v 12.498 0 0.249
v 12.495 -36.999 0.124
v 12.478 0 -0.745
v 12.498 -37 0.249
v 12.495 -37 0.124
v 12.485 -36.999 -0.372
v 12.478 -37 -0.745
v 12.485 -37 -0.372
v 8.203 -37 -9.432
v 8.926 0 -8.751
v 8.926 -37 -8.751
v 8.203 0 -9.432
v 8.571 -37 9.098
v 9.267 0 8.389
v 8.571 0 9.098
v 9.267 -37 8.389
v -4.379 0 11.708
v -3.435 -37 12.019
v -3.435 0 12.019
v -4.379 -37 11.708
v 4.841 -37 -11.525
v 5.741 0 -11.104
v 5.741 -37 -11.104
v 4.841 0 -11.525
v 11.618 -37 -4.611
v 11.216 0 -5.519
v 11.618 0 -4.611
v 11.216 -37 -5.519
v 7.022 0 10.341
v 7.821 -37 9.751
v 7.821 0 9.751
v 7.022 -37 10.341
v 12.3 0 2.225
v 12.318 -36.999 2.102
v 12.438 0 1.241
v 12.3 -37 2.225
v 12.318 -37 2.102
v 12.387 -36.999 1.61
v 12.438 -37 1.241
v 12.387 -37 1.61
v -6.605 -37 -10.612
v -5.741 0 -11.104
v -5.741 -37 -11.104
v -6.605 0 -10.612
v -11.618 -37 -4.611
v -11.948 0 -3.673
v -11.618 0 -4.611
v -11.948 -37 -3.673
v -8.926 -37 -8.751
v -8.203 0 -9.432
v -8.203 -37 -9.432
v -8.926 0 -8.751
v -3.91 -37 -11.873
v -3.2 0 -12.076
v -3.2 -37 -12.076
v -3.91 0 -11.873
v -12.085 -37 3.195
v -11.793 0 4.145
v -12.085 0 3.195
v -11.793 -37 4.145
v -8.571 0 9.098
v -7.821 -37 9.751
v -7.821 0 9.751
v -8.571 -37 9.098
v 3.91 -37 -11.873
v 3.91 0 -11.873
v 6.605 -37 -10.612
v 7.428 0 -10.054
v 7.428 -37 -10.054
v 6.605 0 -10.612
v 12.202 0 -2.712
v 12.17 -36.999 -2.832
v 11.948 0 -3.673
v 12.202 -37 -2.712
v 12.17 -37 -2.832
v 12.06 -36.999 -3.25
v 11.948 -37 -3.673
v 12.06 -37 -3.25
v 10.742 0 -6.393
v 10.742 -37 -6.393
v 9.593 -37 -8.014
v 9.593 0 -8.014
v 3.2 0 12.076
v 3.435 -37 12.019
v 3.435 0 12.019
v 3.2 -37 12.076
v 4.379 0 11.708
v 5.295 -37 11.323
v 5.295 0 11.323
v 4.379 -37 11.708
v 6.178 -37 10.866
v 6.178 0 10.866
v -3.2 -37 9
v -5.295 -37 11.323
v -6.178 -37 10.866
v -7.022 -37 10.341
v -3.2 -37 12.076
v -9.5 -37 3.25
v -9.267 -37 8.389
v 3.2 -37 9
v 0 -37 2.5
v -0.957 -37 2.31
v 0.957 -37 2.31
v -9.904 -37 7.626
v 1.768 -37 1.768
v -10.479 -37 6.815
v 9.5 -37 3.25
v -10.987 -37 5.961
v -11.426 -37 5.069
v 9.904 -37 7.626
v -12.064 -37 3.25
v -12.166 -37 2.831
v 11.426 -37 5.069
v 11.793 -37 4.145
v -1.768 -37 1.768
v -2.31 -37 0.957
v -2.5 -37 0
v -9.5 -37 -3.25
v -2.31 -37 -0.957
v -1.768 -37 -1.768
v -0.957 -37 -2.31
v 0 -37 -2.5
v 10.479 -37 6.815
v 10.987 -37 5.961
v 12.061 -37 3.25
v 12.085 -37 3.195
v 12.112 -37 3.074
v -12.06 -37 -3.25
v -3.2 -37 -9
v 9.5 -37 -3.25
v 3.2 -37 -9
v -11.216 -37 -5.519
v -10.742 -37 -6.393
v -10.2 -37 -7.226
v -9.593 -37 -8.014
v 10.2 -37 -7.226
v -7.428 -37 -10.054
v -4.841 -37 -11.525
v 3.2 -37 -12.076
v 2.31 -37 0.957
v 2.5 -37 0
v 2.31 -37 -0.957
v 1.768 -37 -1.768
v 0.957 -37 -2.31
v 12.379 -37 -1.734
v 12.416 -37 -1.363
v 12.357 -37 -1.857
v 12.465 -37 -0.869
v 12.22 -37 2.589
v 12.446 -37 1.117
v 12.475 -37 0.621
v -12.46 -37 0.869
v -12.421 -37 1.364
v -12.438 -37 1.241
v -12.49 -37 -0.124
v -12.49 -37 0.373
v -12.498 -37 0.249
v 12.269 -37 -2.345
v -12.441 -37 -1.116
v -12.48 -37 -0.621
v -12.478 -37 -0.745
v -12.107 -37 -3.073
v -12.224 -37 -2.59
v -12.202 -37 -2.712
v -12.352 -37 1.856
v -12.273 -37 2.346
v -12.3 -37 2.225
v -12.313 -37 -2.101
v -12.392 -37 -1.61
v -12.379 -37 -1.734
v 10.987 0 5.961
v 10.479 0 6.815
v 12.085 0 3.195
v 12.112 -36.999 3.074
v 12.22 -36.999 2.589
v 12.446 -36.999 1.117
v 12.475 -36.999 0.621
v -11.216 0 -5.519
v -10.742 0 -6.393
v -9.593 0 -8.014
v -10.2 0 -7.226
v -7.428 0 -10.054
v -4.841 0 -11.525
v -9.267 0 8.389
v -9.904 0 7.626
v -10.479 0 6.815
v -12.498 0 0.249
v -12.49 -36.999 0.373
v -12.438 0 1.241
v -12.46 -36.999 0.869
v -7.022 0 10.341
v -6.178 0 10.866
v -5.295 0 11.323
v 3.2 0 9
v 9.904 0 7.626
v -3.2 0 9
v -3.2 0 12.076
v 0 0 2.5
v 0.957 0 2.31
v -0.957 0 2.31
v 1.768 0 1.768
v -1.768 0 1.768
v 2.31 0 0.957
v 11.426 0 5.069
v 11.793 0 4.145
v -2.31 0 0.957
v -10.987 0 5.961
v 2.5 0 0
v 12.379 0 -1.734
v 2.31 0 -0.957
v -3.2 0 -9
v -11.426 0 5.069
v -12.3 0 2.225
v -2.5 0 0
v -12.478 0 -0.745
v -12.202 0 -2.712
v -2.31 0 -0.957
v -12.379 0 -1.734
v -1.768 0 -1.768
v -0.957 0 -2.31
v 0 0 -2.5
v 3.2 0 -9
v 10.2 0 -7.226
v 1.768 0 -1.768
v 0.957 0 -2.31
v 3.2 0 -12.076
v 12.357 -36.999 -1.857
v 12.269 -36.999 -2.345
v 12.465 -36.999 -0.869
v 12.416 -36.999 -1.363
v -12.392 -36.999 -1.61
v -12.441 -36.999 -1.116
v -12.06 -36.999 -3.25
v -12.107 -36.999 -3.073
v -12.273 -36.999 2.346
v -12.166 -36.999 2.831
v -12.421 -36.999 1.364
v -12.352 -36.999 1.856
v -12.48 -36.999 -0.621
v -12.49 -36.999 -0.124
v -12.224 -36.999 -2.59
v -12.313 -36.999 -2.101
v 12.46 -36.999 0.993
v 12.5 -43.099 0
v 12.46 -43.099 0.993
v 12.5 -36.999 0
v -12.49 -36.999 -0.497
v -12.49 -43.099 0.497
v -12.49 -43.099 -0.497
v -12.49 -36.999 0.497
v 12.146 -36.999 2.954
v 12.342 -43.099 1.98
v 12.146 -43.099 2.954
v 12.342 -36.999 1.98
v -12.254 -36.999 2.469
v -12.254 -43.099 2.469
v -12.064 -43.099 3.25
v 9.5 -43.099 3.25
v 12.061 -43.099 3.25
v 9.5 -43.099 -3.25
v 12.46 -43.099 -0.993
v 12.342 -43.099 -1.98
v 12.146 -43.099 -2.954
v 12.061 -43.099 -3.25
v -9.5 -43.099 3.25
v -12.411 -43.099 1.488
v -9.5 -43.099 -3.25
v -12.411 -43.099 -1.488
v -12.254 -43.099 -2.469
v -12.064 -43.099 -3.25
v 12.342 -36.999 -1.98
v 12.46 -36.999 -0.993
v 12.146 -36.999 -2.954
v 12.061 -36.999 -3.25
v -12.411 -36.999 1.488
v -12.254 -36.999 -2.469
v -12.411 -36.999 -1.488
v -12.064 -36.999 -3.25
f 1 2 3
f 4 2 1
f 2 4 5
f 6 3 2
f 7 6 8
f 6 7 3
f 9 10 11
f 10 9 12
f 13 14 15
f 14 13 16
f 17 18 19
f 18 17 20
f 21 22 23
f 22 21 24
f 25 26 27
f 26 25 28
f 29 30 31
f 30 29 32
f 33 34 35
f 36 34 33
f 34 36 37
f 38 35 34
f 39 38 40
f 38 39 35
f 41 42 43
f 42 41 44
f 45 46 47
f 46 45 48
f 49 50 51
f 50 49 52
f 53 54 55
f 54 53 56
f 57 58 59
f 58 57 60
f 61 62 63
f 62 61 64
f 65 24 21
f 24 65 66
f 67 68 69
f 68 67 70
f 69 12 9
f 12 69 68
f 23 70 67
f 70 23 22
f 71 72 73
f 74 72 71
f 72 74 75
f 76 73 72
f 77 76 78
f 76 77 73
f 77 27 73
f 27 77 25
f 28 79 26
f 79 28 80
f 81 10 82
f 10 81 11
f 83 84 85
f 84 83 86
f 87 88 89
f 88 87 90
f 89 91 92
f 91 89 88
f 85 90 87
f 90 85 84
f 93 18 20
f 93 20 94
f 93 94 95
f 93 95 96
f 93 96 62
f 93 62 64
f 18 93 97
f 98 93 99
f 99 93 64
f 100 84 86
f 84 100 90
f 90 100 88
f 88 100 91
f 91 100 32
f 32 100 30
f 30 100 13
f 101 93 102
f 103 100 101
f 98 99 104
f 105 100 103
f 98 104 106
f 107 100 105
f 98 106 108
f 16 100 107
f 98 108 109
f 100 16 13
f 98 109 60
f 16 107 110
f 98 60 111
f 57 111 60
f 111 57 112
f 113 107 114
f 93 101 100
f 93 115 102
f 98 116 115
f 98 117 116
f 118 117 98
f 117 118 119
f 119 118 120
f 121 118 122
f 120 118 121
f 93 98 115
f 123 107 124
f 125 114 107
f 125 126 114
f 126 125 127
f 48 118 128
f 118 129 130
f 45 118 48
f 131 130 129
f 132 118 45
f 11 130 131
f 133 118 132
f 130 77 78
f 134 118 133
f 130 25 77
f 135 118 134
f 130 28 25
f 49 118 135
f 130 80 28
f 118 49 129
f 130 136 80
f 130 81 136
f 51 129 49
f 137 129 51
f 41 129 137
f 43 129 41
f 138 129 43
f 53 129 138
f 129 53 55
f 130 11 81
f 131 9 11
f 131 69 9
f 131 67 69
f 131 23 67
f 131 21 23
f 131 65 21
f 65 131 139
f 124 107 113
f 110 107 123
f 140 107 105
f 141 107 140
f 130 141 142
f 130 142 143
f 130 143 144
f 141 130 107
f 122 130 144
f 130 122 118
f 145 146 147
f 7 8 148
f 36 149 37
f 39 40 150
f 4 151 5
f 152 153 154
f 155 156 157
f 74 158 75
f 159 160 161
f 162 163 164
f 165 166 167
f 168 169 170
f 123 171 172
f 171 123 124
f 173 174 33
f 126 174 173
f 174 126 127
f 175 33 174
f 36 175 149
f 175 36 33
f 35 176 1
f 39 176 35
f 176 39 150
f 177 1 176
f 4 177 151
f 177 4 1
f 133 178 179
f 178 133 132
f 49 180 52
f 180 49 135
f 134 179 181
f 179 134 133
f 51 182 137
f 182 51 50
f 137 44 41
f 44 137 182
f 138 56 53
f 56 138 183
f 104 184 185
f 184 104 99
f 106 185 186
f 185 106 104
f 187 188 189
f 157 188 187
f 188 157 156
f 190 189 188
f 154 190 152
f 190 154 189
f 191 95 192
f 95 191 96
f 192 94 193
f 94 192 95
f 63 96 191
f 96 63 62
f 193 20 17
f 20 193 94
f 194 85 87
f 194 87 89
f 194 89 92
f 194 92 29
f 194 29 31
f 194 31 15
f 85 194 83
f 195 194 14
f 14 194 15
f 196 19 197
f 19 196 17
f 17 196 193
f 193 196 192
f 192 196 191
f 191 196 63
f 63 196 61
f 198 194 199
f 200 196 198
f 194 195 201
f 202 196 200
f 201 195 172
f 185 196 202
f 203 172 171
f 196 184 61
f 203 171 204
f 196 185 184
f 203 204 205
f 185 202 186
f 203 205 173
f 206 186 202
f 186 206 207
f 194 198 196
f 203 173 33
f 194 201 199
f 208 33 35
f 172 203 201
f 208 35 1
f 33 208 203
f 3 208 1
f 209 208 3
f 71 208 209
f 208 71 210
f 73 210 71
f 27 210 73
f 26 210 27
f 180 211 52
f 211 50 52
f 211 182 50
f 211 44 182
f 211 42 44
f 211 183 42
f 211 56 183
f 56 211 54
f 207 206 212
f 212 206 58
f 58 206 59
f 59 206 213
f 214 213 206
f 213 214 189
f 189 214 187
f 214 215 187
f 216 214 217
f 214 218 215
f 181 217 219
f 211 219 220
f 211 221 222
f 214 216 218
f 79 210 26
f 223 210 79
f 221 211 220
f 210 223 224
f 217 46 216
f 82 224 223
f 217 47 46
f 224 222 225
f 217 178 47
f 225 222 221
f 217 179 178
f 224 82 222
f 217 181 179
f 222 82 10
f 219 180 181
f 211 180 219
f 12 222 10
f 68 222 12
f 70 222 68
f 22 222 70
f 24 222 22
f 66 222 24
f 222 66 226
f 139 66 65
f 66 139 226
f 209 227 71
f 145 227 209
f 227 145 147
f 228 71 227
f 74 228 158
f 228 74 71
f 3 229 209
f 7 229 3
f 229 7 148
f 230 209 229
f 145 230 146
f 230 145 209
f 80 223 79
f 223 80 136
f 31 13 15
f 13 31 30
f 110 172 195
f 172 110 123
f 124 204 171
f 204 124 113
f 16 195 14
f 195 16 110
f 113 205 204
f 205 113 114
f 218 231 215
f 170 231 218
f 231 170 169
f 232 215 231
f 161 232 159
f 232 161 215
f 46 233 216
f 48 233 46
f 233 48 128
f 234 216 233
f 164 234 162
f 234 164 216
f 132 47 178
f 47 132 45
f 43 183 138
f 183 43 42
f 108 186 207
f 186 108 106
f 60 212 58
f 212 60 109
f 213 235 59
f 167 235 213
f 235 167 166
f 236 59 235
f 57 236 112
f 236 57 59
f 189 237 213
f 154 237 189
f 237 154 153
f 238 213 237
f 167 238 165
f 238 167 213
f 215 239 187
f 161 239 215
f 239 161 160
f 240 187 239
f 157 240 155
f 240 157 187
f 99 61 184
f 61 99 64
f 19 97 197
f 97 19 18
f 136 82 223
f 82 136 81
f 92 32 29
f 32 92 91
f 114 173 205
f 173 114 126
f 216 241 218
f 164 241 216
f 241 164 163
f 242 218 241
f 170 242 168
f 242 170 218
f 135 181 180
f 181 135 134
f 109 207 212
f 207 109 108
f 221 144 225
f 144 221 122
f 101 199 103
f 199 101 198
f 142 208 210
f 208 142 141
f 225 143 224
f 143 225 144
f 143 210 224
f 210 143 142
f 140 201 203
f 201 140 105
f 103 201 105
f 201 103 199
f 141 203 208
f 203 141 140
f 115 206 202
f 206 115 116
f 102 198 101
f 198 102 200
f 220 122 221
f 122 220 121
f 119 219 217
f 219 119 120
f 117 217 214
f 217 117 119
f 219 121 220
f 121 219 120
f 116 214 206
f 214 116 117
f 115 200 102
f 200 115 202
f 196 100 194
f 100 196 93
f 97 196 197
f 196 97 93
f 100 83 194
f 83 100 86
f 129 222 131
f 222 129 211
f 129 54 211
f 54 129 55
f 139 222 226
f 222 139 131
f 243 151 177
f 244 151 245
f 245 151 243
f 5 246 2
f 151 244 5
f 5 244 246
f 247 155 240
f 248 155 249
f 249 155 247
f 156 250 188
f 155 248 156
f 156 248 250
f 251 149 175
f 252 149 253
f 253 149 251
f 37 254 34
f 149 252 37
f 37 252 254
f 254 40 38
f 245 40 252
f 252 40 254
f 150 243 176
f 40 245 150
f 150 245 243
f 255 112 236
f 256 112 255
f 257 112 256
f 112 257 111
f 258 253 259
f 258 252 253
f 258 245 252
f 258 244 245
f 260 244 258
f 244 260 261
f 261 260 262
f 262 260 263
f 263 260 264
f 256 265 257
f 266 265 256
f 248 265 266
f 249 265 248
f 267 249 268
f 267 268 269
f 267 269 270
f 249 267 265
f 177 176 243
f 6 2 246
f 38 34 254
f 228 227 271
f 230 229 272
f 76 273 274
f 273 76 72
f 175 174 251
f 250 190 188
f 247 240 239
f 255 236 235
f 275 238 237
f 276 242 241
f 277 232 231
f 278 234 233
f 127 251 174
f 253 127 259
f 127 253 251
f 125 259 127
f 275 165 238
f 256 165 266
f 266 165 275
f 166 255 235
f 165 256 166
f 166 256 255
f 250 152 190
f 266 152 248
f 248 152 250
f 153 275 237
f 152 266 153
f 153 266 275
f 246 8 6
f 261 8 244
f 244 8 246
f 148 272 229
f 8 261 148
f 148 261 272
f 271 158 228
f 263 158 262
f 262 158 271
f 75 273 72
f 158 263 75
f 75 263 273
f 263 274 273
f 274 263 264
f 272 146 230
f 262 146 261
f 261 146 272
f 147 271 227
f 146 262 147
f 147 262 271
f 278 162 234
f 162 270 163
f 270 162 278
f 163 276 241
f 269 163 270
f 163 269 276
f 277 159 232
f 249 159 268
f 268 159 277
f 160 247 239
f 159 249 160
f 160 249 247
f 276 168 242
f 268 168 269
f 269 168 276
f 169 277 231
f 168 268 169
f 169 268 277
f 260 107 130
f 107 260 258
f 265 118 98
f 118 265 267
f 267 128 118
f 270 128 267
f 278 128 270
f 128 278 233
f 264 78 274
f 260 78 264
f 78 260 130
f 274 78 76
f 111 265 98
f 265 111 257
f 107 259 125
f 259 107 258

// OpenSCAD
$fa = 0.4;
$fs = 1.0;

rotate([90,90,0])
union() {
	difference() {
		makeMainBody();
		makeScrewHole();
		makeLeftNotch();
		makeRightNotch();
	}

	rotate([0,0,90])
	translate([0, 0, 37-0.001])
	makeTabs();
}

module makeMainBody() {
	cylinder(d=25, h=37);
}

module makeScrewHole() {
	cylinder(d=5, h=37);
}

module makeLeftNotch() {
	translate([-9,0,0])
	translate([-6.4, -(6.4/2), 0])
	cube([6.4, 6.4, 37]);
}

module makeRightNotch() {
	translate([9, -(6.4/2), 0])
	cube([6.4, 6.4, 37]);
}

module makeTabs() {
	intersection() {
		difference() {
			cylinder(d=25, h=6.1);
			cylinder(d=18, h=6.1);
			rotate([0,0,90])
			translate([-(26/2), -19/2, 0]) 
			cube([26,19,6.1]);
		}
		translate([-(26/2), -6.5/2, 0]) 
		cube([26,6.5,6.1]);
	}
}
